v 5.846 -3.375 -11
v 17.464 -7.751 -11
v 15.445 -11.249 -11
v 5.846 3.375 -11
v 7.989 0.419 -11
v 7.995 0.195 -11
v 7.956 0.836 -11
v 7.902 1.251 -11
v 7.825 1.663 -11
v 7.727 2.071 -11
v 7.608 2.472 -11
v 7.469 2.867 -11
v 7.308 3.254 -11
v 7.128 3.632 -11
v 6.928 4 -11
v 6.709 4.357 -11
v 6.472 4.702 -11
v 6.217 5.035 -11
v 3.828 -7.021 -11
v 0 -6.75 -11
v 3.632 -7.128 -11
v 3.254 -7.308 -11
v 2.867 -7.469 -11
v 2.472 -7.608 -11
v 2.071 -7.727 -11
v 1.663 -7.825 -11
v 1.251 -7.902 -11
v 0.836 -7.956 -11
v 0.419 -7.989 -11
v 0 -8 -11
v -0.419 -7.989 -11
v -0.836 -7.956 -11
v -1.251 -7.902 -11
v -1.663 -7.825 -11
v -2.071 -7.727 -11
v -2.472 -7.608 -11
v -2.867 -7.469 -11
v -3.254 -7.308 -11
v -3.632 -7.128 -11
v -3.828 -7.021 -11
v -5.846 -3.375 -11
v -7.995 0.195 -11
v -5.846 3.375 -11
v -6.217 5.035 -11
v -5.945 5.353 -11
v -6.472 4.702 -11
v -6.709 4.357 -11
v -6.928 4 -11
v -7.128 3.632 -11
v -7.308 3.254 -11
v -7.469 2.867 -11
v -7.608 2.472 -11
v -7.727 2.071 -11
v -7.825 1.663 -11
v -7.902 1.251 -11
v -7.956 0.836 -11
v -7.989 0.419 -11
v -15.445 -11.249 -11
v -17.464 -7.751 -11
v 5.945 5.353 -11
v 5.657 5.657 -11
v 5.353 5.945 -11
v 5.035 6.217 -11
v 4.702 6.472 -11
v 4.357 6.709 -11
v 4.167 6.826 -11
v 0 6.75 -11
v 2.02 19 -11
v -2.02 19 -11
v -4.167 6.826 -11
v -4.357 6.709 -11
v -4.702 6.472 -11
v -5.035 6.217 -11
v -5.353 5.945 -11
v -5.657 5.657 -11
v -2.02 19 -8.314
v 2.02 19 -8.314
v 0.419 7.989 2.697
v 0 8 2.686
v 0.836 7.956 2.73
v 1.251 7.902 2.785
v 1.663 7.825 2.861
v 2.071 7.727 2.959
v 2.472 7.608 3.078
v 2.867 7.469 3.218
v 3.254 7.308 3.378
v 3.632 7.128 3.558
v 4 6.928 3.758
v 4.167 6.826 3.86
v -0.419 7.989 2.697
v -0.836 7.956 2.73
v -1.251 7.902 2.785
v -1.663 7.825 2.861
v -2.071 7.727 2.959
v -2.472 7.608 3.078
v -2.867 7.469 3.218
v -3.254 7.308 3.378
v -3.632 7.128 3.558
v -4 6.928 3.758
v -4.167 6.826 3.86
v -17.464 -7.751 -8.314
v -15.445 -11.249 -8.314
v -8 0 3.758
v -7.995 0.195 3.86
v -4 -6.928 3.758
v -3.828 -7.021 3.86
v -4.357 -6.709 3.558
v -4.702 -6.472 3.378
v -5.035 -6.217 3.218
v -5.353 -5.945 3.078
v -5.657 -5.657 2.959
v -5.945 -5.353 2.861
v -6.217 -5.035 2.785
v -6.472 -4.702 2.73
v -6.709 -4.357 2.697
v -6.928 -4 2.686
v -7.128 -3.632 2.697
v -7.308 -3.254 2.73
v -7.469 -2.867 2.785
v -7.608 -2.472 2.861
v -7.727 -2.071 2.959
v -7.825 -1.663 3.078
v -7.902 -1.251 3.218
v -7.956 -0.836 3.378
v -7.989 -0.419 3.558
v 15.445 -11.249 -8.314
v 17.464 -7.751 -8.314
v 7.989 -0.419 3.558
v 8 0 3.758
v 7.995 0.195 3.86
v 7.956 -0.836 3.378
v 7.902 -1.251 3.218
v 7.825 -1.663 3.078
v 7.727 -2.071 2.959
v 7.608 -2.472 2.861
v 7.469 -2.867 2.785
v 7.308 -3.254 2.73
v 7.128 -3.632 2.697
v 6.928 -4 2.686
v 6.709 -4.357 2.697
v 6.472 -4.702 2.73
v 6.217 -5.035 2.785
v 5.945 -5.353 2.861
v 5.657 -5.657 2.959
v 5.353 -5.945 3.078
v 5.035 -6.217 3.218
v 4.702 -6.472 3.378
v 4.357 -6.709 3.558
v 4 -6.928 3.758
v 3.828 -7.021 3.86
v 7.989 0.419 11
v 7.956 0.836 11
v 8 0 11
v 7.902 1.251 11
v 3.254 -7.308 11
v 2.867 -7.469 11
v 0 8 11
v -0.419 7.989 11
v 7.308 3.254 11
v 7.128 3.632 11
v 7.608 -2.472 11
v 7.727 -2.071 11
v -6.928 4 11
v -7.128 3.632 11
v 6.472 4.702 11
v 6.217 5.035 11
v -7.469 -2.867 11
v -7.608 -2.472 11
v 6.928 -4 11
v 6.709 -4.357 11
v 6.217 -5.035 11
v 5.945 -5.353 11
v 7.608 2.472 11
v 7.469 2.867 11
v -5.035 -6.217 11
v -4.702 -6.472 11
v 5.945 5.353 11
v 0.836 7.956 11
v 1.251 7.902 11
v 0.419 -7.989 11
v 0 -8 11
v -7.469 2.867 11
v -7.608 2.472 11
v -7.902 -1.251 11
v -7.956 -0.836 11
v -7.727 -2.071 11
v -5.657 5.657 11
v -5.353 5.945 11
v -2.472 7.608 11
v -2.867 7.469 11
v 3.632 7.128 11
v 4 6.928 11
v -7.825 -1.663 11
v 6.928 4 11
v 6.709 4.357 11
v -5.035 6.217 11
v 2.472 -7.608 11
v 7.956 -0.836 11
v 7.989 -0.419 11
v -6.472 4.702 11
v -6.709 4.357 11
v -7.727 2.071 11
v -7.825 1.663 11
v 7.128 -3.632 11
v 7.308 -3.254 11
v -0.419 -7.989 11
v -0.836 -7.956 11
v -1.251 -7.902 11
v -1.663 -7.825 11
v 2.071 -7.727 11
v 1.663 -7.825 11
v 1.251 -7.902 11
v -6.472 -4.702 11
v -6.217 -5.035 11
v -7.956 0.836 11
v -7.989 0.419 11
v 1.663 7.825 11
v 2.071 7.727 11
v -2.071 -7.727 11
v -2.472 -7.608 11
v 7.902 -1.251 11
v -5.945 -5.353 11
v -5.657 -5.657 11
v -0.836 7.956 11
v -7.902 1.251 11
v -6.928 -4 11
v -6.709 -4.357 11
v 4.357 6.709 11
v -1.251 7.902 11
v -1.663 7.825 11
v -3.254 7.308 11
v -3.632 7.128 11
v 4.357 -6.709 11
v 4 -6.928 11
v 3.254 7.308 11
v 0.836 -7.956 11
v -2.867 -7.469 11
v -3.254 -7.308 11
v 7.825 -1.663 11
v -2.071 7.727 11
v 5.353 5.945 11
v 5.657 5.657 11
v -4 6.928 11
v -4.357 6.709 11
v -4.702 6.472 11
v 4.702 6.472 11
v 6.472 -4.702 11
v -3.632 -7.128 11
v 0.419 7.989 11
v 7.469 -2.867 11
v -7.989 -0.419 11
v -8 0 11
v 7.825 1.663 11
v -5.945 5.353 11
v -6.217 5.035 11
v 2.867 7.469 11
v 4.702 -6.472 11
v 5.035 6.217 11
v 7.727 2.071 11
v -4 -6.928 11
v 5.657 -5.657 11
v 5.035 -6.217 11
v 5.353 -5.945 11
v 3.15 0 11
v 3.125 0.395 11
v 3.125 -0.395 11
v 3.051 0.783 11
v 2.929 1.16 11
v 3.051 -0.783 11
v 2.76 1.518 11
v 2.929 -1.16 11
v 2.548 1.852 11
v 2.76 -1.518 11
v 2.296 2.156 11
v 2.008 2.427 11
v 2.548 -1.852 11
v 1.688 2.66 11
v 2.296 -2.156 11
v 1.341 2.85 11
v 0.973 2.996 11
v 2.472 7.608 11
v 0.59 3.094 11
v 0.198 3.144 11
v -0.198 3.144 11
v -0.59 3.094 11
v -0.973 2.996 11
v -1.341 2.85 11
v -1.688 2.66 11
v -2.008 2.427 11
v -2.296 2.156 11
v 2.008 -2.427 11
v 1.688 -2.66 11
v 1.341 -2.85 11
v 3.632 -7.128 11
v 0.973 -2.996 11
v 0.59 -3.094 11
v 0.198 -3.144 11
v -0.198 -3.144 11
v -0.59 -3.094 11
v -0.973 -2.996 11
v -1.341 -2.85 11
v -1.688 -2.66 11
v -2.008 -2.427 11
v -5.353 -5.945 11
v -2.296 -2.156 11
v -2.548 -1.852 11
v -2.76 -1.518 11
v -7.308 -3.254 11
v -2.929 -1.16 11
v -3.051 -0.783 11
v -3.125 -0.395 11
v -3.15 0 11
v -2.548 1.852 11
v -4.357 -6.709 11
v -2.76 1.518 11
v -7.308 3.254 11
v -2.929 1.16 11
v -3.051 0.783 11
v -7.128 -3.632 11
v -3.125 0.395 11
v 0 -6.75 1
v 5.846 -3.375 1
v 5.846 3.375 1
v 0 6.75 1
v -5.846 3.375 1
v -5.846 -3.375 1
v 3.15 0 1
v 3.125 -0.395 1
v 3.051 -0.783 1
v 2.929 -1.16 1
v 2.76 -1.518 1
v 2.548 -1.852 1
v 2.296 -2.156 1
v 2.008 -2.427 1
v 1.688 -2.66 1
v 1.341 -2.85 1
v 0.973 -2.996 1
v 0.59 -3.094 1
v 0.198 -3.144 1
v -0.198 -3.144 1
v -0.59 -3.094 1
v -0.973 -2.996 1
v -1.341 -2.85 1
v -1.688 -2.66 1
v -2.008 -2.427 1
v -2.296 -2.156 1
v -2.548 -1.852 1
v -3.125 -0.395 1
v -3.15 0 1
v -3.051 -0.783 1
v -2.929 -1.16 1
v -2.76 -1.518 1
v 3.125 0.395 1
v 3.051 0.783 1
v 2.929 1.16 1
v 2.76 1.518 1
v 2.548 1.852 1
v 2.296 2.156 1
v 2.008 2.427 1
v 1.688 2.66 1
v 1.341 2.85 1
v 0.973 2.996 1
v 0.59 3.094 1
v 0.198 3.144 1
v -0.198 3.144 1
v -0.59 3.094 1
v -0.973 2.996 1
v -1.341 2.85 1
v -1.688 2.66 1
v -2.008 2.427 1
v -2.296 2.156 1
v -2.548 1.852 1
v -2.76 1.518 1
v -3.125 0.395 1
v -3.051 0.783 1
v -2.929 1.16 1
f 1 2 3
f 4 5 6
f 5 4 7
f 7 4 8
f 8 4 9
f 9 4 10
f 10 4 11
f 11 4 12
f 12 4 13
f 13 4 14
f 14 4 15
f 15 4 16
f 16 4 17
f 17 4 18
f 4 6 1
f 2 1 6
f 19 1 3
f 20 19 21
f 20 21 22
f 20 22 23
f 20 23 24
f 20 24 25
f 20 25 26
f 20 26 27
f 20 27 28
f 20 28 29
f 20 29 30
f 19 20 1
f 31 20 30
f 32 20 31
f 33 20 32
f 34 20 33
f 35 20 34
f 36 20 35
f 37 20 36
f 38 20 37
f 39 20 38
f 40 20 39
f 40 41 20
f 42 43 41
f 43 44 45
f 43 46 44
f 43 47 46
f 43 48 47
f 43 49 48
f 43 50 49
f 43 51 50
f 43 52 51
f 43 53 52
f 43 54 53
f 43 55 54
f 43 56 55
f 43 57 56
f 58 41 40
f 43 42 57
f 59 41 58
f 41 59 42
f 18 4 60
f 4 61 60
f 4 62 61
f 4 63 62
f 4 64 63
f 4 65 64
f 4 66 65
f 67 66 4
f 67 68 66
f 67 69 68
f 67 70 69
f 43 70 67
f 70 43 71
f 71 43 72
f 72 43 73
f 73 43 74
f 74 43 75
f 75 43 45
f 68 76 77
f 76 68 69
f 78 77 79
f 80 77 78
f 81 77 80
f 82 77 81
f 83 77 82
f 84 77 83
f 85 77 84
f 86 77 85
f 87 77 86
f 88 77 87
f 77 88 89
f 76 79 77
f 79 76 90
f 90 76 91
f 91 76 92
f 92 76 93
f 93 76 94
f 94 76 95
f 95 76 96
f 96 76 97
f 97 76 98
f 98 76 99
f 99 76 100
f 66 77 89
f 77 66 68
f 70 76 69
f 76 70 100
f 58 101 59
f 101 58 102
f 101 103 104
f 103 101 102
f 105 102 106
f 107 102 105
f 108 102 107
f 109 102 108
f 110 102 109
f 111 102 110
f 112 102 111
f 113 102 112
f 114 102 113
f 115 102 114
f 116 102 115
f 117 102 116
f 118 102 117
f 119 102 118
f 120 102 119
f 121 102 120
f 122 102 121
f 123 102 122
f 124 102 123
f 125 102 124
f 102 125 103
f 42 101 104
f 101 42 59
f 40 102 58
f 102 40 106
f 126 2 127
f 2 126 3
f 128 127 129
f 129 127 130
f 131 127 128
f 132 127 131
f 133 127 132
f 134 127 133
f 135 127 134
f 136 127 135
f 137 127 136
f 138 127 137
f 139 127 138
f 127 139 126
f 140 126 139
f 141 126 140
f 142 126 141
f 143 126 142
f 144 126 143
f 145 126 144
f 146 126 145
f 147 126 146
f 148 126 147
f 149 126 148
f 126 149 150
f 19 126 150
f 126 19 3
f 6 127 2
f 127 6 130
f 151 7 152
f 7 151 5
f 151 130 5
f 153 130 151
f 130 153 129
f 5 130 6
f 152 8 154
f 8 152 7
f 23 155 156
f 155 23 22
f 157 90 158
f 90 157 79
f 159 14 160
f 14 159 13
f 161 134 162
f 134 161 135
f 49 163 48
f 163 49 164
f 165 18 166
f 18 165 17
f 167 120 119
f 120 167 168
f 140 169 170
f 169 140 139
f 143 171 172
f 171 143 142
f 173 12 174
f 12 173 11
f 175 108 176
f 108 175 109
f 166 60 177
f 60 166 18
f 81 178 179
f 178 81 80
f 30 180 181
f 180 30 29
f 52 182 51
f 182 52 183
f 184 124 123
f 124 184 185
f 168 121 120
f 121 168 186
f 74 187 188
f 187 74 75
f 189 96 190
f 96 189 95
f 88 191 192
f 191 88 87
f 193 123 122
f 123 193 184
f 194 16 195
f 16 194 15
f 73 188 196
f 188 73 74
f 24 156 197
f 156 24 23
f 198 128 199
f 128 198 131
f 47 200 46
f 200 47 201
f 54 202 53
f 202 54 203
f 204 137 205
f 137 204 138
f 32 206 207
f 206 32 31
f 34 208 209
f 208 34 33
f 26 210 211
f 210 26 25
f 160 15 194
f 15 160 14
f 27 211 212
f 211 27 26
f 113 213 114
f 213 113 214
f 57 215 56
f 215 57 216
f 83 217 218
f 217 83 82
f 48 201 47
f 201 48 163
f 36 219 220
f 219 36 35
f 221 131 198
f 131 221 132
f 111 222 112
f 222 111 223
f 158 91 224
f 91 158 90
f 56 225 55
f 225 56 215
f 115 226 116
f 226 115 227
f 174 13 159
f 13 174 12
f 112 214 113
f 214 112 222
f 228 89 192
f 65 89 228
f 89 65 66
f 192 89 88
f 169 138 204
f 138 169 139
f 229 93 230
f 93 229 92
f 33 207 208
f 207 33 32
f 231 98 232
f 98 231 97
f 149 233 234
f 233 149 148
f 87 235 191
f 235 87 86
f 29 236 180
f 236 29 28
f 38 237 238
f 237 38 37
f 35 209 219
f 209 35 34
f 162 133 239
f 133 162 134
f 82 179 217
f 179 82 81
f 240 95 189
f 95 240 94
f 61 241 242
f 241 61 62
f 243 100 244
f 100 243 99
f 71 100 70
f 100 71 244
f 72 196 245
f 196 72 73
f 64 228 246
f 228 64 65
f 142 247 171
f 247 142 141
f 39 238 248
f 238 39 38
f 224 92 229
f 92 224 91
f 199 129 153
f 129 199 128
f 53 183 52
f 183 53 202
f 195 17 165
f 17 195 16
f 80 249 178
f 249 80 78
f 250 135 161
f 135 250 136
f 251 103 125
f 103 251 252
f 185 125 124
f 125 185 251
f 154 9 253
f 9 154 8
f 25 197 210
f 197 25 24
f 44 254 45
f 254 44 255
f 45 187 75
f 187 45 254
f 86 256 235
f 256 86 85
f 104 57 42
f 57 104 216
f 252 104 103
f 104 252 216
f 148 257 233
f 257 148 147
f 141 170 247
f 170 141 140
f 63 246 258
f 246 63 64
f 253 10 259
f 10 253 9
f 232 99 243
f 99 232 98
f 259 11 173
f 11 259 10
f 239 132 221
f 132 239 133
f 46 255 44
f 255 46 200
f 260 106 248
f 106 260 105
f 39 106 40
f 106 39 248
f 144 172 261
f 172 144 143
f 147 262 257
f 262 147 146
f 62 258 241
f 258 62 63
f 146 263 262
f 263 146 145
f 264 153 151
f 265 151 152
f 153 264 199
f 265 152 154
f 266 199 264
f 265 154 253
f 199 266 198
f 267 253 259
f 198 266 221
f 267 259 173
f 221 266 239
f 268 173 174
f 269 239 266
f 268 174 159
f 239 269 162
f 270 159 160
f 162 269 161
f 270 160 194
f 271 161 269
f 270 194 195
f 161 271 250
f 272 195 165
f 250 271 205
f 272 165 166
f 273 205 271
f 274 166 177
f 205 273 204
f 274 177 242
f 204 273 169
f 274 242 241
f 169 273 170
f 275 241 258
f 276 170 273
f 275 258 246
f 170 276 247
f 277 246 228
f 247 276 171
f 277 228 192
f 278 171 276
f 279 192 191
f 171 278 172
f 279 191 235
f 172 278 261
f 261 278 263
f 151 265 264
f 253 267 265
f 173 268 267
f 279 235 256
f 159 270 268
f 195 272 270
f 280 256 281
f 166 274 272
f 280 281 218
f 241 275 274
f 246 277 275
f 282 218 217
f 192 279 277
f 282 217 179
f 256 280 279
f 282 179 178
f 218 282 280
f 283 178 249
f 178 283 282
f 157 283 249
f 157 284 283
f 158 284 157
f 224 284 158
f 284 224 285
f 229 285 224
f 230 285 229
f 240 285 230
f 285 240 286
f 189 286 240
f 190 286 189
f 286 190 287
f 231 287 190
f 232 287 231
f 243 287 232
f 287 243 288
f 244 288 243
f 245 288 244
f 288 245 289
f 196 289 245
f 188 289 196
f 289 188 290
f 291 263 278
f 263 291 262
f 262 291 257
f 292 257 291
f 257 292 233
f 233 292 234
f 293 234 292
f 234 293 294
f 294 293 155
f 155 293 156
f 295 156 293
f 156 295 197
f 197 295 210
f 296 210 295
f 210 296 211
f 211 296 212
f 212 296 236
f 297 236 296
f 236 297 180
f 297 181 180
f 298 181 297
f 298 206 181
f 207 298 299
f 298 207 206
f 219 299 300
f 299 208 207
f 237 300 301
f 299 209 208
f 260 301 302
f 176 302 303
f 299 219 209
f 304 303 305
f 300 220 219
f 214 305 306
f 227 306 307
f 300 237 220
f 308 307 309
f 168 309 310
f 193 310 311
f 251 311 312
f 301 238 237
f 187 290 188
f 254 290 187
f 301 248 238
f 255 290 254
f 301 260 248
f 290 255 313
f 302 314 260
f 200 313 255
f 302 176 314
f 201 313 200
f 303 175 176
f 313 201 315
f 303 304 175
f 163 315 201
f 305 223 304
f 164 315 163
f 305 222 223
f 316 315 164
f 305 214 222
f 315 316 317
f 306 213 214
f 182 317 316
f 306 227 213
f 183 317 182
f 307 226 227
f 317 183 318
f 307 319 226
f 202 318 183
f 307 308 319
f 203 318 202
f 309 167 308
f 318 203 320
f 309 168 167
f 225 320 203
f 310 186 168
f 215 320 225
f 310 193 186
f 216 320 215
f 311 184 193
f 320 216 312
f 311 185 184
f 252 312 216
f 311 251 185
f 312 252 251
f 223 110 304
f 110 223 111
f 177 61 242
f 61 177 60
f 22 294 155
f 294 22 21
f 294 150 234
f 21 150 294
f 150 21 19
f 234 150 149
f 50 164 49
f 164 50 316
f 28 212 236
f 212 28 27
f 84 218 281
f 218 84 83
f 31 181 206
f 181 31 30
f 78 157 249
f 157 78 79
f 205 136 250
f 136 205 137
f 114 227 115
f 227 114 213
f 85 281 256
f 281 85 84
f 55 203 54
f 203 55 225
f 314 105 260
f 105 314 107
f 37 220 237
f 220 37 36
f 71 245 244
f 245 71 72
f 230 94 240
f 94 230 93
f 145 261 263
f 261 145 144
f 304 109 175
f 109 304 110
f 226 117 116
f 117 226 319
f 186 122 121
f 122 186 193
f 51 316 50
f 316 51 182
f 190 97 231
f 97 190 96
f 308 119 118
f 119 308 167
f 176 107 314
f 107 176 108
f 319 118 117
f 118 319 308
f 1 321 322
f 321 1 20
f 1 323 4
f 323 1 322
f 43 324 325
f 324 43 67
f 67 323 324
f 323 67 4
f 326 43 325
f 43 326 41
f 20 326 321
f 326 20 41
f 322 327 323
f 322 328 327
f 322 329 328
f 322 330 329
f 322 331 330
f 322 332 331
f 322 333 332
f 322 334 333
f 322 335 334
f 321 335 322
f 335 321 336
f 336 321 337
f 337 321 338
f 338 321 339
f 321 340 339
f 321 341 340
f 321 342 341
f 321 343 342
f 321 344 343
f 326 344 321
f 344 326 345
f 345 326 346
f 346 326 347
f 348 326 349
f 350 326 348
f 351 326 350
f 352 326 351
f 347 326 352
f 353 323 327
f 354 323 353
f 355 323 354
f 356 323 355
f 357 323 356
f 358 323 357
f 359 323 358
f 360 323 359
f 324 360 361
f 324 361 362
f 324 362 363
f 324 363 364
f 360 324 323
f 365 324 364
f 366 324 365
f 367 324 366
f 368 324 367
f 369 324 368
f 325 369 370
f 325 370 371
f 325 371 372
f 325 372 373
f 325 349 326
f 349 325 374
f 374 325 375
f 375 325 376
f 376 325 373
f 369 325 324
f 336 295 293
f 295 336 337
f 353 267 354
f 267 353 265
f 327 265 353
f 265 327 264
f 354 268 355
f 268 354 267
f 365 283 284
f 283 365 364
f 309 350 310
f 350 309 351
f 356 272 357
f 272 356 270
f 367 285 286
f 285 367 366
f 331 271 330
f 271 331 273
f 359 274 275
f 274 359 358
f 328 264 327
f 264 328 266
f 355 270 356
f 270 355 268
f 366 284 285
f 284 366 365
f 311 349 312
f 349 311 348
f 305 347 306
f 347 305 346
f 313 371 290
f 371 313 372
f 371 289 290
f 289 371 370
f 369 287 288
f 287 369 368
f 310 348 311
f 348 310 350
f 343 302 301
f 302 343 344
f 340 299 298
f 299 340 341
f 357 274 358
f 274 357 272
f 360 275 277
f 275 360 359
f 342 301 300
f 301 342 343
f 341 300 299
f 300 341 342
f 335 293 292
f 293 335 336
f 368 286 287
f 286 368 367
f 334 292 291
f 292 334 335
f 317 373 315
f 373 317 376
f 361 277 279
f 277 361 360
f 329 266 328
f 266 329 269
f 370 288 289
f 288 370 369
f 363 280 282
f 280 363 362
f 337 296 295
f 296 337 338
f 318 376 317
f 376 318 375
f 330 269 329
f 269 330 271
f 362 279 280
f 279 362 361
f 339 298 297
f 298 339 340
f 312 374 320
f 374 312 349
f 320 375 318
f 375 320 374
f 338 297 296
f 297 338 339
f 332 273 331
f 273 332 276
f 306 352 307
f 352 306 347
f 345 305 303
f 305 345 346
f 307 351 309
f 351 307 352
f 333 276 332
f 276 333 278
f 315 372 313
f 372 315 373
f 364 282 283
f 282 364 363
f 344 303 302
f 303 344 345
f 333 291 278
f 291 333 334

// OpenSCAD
// THREAD
// 1/4" 20 (coarse)

module hex (diag = 10, h = 1) {
    cylinder(r = diag / 2, h = h, center = true, $fn = 6);
}

module jk_projector_knob_positive () {
    $fn = 120;
    count = 3;
    cylinder(r = 16 / 2, h = 22, center = true);
    for (i = [0 : count - 1]) {
        rotate([0, 0, i * (360 / count) ])    translate([0, 8+3, -3]) difference () {
            cube([9, 16, 16], center = true);
            translate([0, 8, 6]) rotate([-45, 0, 0]) cube([9 + 1, 16*2, 16], center = true);
          translate([8, 0, 0]) rotate([0, 0, 10]) cube([9, 20, 16+ 1], center = true);
          translate([-8, 0, 0]) rotate([0, 0, -10]) cube([9, 20, 16+ 1], center = true);
        }
        
    }
}
//20-12
module jk_projector_knob () {
    difference () {
        jk_projector_knob_positive();
        translate([0, 0, -(22 - 12)]) rotate([0, 0, 30]) hex(13.5, 22);
         cylinder(r = 6.3 / 2, h = 22 + 1, center = true, $fn = 50);
    }
}

//hex(13 - .5, 11-4.5);

jk_projector_knob();
